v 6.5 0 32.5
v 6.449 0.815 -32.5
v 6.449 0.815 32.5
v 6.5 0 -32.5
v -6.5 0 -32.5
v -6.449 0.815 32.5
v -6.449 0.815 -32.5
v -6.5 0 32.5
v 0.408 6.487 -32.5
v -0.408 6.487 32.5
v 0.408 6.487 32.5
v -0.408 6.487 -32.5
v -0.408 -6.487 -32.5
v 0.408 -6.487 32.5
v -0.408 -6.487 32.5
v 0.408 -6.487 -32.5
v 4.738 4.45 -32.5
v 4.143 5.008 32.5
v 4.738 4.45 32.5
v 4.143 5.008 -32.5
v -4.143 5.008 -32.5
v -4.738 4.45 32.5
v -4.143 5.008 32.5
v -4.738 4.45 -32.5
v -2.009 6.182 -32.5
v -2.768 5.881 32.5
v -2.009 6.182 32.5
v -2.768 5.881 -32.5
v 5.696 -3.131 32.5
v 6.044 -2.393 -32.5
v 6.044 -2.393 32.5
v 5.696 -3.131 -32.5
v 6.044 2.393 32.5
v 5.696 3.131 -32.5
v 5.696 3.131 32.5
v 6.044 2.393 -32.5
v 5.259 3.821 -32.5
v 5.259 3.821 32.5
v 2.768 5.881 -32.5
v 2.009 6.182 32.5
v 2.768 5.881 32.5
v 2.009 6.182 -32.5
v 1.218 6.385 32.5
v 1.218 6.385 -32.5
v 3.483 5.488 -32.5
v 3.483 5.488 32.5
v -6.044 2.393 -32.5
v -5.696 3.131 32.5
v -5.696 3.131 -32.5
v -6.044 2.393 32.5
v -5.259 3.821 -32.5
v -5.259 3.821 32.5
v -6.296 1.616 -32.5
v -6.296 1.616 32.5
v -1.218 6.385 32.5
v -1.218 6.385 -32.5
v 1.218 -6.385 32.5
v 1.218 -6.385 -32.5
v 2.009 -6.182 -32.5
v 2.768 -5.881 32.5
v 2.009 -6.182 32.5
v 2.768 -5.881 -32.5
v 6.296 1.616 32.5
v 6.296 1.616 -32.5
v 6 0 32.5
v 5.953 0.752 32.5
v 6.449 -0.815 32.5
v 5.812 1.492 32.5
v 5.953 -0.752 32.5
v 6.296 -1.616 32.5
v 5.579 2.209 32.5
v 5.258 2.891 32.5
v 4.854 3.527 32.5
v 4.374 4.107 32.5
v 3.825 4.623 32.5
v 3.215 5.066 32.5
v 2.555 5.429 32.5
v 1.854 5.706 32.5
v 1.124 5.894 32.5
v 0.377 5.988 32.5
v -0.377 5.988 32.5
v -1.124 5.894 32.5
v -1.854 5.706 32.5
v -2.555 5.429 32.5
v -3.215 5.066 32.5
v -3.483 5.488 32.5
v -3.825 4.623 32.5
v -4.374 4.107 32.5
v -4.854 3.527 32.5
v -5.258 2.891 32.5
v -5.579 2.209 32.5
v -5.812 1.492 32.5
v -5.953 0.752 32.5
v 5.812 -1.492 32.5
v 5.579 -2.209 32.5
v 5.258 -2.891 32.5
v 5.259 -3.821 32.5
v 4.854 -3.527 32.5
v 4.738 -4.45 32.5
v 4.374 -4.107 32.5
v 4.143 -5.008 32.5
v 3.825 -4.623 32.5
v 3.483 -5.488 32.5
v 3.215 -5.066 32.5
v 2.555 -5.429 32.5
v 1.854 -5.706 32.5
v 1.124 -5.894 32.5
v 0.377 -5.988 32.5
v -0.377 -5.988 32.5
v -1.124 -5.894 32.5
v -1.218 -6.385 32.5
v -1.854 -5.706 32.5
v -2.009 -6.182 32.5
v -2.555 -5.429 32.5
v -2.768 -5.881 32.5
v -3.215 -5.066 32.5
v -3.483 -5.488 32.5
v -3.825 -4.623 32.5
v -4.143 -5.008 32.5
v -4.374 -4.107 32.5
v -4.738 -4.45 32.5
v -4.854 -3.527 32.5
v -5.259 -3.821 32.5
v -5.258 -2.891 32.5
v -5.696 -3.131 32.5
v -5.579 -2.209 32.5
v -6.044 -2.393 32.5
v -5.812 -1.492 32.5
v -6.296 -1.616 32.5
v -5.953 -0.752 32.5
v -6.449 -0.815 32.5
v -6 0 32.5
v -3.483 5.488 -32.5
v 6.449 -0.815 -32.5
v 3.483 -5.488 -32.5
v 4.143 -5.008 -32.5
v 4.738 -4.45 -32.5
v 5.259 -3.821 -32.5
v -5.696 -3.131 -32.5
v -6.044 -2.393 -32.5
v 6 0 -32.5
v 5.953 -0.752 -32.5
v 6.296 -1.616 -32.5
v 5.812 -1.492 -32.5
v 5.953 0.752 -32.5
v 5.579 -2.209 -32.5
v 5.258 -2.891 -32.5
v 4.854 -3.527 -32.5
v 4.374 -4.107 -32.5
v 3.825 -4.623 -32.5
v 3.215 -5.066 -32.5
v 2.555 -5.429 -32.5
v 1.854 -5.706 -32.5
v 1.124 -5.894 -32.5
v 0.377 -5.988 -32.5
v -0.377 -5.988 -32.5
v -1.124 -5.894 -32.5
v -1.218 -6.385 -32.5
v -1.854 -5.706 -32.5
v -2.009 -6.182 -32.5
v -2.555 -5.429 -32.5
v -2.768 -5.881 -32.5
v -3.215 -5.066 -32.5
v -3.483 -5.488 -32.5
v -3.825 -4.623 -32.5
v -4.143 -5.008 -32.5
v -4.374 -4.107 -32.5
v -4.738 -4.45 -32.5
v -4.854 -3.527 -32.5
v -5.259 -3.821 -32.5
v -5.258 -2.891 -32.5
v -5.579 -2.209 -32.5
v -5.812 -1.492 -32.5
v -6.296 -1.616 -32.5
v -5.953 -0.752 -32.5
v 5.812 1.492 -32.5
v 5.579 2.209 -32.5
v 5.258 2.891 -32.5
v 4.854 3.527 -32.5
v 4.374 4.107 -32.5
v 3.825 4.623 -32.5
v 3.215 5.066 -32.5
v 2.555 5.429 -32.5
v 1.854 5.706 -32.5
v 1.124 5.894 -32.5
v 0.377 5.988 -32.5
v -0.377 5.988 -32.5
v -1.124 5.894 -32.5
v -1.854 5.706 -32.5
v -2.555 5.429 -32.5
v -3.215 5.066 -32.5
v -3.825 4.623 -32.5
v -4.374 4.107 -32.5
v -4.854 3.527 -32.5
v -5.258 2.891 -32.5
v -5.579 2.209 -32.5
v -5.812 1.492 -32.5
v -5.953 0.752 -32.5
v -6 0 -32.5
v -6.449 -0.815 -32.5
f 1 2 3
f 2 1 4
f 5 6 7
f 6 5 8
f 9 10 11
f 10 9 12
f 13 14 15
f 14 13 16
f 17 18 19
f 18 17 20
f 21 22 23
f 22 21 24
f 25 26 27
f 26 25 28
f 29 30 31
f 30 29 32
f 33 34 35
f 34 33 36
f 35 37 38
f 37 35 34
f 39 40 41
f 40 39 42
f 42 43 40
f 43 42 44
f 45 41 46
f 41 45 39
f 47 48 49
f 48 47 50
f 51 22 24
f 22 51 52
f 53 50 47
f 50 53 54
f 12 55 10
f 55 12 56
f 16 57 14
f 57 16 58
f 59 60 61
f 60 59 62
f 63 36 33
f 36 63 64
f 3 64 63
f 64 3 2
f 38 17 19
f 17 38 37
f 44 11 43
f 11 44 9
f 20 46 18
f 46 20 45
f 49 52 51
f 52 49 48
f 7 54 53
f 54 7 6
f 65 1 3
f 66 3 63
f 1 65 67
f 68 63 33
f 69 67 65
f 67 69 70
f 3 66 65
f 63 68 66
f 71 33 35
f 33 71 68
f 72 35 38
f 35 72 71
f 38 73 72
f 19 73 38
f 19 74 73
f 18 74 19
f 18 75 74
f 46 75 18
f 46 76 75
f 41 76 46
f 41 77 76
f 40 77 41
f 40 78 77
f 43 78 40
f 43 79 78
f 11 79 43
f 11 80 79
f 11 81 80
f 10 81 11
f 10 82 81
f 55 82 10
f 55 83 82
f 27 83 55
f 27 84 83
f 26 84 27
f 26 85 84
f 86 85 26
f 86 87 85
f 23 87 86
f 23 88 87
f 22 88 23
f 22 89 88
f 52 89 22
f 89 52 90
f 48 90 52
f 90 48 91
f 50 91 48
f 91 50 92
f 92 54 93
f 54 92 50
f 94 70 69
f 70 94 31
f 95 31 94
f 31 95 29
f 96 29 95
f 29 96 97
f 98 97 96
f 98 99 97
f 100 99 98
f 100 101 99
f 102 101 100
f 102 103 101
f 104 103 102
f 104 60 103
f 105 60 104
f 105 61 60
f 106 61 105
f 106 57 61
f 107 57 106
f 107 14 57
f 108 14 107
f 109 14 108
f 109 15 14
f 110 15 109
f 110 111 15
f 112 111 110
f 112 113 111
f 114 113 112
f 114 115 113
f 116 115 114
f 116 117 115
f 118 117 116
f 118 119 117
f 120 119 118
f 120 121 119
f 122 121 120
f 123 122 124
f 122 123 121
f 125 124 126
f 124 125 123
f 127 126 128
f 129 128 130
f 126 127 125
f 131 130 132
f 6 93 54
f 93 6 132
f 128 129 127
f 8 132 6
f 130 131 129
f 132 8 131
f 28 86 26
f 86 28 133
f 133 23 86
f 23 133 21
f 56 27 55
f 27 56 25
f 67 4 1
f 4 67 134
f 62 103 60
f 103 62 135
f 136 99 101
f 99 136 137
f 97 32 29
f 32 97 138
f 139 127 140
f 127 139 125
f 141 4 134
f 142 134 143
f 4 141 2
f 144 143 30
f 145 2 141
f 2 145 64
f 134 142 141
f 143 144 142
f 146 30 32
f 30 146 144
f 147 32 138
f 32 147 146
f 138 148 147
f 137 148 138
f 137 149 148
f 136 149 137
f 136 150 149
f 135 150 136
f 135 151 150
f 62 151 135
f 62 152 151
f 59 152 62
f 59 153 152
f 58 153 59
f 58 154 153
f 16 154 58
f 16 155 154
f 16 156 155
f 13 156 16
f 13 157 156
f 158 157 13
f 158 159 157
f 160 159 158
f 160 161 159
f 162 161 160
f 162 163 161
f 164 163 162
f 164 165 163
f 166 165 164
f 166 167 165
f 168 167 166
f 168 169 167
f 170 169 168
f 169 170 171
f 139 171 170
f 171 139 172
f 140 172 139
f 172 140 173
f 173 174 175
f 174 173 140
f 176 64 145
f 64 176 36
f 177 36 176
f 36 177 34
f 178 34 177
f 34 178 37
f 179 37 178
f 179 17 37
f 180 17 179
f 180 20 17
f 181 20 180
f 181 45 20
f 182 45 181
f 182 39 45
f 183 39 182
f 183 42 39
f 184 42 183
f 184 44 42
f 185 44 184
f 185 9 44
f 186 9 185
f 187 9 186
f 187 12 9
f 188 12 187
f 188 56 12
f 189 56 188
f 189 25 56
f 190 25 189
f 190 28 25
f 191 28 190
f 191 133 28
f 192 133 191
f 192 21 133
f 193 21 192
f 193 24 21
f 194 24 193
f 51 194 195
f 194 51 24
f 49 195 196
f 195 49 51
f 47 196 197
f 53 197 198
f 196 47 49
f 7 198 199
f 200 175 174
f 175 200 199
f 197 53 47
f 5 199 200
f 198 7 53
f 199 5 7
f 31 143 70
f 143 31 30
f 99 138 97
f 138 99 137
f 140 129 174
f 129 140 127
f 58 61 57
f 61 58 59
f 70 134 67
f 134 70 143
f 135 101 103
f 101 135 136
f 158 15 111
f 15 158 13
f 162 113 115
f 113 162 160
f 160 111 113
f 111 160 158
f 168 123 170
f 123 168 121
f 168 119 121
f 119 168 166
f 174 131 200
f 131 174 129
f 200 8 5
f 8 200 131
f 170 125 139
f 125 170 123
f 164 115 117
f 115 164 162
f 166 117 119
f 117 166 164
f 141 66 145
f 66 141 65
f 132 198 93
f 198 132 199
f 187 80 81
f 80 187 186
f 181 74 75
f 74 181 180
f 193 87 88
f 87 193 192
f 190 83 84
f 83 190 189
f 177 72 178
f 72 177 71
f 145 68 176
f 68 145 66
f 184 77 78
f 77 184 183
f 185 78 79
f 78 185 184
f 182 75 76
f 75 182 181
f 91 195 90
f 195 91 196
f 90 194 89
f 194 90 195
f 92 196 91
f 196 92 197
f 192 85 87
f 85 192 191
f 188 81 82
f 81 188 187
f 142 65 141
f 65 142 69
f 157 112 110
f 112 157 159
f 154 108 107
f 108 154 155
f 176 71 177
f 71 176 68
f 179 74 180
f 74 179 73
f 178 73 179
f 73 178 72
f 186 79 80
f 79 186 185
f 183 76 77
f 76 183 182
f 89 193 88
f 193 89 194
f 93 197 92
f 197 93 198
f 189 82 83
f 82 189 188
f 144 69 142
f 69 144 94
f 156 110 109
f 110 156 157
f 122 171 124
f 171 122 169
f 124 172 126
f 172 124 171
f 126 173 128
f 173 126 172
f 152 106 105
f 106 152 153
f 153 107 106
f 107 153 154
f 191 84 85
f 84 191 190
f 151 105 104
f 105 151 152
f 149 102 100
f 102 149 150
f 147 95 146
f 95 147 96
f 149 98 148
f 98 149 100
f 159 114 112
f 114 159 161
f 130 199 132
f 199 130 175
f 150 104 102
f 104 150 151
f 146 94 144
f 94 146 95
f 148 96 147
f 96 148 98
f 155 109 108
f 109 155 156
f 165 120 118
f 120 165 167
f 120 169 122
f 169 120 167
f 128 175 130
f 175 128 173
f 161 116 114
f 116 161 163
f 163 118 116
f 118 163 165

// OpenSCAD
$fn = 50;


difference() {
	union() {
		translate(v = [0, 0, -32.5000000000]) {
			cylinder(h = 65, r = 6.5000000000);
		}
	}
	union() {
		translate(v = [0, 0, -100.0000000000]) {
			cylinder(h = 200, r = 6);
		}
	}
}
